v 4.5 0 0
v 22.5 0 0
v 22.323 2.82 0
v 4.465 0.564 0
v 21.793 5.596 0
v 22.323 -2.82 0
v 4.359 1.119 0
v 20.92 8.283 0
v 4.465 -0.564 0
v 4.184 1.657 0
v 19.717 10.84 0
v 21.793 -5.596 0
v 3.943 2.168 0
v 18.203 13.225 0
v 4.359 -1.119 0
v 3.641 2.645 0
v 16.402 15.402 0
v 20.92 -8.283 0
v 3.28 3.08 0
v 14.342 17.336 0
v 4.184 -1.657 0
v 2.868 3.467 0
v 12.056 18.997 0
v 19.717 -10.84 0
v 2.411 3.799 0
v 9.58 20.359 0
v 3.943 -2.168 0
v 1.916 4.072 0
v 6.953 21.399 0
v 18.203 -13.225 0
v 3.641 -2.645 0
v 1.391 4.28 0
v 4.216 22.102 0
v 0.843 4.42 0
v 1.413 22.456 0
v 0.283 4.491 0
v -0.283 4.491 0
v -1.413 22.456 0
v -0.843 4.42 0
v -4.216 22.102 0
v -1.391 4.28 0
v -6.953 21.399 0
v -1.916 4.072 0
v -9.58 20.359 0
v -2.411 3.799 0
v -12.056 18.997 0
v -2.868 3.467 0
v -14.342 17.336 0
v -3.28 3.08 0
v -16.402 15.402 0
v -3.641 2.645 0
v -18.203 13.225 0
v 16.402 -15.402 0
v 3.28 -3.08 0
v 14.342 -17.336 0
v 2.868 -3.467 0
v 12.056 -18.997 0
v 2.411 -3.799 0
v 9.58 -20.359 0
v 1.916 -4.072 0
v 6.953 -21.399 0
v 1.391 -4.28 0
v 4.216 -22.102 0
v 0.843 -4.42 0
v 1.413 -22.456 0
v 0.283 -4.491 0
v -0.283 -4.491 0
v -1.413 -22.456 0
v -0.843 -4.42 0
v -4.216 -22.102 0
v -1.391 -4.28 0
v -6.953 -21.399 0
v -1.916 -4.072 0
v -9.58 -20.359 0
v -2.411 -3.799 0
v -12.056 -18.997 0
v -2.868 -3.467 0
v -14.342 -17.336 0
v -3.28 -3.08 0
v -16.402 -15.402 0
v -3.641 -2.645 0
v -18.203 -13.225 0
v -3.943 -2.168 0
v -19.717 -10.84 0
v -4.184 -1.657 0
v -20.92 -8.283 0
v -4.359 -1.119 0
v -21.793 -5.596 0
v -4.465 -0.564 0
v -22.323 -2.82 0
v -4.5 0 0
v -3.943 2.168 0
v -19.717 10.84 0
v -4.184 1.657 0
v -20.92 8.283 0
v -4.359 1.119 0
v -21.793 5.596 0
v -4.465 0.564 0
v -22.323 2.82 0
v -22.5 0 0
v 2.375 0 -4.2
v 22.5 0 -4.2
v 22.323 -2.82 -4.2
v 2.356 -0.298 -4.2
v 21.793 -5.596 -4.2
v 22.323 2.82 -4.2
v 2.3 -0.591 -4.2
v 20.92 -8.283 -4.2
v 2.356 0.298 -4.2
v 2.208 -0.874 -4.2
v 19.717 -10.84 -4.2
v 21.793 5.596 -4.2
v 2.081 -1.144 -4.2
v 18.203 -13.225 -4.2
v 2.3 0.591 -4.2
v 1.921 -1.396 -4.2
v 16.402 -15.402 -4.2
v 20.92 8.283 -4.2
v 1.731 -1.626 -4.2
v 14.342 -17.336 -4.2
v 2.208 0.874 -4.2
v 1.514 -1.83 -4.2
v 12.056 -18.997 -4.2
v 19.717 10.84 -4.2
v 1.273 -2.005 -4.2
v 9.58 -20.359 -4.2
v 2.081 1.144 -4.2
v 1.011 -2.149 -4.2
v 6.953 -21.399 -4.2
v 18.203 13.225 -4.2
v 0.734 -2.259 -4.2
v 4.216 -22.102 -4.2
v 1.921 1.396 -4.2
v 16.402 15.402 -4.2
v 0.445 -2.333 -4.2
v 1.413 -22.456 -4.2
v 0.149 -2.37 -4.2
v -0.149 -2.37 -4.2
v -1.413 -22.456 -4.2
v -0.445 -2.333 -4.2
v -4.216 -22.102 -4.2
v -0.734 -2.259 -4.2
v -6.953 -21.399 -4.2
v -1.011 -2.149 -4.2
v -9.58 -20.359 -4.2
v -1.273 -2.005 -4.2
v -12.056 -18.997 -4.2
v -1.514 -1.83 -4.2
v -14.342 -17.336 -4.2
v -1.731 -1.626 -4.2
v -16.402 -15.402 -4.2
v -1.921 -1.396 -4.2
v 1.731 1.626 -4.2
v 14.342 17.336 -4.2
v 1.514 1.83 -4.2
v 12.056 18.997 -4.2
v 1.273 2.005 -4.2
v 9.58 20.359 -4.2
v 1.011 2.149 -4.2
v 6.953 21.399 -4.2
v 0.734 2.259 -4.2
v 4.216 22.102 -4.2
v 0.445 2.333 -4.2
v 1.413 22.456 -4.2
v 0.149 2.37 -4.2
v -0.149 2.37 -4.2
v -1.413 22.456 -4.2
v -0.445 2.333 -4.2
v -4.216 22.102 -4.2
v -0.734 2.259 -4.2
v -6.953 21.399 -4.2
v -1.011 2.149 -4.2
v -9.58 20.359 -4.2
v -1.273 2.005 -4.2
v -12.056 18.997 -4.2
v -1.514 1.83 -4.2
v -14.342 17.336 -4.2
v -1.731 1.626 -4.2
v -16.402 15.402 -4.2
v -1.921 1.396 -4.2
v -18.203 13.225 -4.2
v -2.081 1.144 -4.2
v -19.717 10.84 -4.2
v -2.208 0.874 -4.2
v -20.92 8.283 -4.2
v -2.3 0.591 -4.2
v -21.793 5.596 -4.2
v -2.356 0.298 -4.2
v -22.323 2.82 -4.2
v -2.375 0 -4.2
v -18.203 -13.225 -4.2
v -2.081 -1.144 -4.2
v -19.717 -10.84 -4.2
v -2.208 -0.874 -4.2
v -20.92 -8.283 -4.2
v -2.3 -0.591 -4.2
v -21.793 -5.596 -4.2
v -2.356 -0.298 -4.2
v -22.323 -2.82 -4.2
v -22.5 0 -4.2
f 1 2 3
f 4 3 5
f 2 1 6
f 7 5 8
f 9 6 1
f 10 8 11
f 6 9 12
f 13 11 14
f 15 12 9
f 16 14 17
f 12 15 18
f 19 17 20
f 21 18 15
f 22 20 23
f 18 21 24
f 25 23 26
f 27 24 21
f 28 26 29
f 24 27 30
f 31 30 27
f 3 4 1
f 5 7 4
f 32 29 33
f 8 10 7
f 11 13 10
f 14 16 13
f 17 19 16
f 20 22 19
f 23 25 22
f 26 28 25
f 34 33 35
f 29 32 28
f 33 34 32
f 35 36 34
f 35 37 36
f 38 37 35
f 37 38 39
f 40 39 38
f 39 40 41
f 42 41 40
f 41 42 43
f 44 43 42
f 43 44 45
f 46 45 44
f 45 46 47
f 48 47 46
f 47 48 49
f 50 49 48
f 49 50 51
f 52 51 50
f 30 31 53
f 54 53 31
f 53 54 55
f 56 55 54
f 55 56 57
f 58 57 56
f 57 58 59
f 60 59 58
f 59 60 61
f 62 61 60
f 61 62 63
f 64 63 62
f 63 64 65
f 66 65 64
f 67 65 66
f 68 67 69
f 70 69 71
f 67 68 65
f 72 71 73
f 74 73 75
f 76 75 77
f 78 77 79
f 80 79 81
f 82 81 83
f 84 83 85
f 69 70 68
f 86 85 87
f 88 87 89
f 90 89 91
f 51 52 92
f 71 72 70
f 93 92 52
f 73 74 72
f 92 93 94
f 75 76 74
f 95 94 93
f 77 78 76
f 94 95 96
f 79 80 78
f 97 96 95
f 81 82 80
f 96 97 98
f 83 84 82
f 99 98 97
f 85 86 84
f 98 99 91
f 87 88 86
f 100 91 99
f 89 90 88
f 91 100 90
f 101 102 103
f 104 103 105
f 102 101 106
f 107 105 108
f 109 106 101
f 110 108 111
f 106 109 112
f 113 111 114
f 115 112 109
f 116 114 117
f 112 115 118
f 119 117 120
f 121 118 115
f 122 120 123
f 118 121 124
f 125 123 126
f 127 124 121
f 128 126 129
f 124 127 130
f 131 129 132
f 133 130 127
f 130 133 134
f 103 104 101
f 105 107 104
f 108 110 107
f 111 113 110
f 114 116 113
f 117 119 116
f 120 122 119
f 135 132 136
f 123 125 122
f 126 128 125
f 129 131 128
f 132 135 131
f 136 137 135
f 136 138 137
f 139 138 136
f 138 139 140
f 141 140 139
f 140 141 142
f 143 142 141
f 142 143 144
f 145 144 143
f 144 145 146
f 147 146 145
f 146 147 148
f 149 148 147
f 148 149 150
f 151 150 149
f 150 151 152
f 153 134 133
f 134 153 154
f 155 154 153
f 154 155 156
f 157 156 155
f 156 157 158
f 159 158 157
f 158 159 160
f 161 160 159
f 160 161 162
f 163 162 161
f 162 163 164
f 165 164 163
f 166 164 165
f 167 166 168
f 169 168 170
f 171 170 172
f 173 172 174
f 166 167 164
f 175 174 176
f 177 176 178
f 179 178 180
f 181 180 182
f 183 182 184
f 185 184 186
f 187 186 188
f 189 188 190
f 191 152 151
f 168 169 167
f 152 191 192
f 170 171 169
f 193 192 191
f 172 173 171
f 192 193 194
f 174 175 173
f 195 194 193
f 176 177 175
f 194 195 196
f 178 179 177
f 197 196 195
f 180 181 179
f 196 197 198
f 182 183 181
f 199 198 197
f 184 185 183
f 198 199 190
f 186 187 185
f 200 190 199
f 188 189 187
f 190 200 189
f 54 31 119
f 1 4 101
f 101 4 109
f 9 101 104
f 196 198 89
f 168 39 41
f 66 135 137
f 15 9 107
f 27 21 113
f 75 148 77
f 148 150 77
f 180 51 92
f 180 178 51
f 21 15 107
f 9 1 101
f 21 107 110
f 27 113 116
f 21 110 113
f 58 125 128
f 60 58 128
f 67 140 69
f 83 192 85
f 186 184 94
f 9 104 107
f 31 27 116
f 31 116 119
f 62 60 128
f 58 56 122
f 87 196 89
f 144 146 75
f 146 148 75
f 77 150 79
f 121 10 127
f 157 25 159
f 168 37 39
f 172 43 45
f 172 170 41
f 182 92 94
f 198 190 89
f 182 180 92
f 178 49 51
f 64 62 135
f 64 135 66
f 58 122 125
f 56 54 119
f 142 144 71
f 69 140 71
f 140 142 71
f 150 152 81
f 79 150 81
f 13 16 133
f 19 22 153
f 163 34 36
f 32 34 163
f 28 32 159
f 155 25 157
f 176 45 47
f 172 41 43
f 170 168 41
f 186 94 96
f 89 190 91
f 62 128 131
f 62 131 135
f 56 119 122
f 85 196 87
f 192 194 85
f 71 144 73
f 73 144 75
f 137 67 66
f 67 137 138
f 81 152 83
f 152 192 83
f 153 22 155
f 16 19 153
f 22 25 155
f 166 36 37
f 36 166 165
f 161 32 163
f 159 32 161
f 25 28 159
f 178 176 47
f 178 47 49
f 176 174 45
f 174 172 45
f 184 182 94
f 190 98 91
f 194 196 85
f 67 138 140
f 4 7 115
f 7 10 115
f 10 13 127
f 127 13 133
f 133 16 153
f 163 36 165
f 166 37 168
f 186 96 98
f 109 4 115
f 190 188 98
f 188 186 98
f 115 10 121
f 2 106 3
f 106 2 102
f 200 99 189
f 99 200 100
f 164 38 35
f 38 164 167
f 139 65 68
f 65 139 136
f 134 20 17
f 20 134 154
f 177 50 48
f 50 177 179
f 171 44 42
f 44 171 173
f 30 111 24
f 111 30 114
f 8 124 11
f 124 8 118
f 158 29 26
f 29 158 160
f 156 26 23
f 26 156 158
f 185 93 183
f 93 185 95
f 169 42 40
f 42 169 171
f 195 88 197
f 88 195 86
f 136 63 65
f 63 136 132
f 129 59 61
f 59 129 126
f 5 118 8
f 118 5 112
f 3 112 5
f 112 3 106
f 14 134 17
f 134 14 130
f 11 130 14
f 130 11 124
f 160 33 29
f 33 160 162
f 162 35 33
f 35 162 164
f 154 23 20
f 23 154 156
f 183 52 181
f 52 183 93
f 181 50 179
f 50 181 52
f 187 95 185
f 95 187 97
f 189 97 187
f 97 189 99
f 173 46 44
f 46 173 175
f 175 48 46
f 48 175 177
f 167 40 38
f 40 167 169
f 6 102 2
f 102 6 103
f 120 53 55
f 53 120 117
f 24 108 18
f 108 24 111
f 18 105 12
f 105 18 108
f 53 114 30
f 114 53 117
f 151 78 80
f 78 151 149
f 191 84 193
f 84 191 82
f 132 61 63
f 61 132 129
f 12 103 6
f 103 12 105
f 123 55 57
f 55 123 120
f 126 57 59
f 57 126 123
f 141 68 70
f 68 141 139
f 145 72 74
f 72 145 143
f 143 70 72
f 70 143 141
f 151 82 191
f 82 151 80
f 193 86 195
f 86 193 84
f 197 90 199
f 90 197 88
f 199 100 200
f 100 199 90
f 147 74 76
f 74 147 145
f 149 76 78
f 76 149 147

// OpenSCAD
$fn = 50;


difference() {
	union() {
		translate(v = [0, 0, -4.2000000000]) {
			cylinder(h = 4.2000000000, r = 22.5000000000);
		}
	}
	union() {
		translate(v = [0, 0, 0]) {
			rotate(a = [0, 0, 0]) {
				difference() {
					union() {
						translate(v = [0, 0, -4.2000000000]) {
							cylinder(h = 4.2000000000, r = 2.2500000000);
						}
						translate(v = [0, 0, -4.2000000000]) {
							cylinder(h = 4.2000000000, r1 = 2.3750000000, r2 = 4.5000000000);
						}
						translate(v = [0, 0, -4.2000000000]) {
							cylinder(h = 4.2000000000, r = 2.3750000000);
						}
						translate(v = [0, 0, -4.2000000000]) {
							cylinder(h = 4.2000000000, r = 2.2500000000);
						}
					}
					union();
				}
			}
		}
	}
}
